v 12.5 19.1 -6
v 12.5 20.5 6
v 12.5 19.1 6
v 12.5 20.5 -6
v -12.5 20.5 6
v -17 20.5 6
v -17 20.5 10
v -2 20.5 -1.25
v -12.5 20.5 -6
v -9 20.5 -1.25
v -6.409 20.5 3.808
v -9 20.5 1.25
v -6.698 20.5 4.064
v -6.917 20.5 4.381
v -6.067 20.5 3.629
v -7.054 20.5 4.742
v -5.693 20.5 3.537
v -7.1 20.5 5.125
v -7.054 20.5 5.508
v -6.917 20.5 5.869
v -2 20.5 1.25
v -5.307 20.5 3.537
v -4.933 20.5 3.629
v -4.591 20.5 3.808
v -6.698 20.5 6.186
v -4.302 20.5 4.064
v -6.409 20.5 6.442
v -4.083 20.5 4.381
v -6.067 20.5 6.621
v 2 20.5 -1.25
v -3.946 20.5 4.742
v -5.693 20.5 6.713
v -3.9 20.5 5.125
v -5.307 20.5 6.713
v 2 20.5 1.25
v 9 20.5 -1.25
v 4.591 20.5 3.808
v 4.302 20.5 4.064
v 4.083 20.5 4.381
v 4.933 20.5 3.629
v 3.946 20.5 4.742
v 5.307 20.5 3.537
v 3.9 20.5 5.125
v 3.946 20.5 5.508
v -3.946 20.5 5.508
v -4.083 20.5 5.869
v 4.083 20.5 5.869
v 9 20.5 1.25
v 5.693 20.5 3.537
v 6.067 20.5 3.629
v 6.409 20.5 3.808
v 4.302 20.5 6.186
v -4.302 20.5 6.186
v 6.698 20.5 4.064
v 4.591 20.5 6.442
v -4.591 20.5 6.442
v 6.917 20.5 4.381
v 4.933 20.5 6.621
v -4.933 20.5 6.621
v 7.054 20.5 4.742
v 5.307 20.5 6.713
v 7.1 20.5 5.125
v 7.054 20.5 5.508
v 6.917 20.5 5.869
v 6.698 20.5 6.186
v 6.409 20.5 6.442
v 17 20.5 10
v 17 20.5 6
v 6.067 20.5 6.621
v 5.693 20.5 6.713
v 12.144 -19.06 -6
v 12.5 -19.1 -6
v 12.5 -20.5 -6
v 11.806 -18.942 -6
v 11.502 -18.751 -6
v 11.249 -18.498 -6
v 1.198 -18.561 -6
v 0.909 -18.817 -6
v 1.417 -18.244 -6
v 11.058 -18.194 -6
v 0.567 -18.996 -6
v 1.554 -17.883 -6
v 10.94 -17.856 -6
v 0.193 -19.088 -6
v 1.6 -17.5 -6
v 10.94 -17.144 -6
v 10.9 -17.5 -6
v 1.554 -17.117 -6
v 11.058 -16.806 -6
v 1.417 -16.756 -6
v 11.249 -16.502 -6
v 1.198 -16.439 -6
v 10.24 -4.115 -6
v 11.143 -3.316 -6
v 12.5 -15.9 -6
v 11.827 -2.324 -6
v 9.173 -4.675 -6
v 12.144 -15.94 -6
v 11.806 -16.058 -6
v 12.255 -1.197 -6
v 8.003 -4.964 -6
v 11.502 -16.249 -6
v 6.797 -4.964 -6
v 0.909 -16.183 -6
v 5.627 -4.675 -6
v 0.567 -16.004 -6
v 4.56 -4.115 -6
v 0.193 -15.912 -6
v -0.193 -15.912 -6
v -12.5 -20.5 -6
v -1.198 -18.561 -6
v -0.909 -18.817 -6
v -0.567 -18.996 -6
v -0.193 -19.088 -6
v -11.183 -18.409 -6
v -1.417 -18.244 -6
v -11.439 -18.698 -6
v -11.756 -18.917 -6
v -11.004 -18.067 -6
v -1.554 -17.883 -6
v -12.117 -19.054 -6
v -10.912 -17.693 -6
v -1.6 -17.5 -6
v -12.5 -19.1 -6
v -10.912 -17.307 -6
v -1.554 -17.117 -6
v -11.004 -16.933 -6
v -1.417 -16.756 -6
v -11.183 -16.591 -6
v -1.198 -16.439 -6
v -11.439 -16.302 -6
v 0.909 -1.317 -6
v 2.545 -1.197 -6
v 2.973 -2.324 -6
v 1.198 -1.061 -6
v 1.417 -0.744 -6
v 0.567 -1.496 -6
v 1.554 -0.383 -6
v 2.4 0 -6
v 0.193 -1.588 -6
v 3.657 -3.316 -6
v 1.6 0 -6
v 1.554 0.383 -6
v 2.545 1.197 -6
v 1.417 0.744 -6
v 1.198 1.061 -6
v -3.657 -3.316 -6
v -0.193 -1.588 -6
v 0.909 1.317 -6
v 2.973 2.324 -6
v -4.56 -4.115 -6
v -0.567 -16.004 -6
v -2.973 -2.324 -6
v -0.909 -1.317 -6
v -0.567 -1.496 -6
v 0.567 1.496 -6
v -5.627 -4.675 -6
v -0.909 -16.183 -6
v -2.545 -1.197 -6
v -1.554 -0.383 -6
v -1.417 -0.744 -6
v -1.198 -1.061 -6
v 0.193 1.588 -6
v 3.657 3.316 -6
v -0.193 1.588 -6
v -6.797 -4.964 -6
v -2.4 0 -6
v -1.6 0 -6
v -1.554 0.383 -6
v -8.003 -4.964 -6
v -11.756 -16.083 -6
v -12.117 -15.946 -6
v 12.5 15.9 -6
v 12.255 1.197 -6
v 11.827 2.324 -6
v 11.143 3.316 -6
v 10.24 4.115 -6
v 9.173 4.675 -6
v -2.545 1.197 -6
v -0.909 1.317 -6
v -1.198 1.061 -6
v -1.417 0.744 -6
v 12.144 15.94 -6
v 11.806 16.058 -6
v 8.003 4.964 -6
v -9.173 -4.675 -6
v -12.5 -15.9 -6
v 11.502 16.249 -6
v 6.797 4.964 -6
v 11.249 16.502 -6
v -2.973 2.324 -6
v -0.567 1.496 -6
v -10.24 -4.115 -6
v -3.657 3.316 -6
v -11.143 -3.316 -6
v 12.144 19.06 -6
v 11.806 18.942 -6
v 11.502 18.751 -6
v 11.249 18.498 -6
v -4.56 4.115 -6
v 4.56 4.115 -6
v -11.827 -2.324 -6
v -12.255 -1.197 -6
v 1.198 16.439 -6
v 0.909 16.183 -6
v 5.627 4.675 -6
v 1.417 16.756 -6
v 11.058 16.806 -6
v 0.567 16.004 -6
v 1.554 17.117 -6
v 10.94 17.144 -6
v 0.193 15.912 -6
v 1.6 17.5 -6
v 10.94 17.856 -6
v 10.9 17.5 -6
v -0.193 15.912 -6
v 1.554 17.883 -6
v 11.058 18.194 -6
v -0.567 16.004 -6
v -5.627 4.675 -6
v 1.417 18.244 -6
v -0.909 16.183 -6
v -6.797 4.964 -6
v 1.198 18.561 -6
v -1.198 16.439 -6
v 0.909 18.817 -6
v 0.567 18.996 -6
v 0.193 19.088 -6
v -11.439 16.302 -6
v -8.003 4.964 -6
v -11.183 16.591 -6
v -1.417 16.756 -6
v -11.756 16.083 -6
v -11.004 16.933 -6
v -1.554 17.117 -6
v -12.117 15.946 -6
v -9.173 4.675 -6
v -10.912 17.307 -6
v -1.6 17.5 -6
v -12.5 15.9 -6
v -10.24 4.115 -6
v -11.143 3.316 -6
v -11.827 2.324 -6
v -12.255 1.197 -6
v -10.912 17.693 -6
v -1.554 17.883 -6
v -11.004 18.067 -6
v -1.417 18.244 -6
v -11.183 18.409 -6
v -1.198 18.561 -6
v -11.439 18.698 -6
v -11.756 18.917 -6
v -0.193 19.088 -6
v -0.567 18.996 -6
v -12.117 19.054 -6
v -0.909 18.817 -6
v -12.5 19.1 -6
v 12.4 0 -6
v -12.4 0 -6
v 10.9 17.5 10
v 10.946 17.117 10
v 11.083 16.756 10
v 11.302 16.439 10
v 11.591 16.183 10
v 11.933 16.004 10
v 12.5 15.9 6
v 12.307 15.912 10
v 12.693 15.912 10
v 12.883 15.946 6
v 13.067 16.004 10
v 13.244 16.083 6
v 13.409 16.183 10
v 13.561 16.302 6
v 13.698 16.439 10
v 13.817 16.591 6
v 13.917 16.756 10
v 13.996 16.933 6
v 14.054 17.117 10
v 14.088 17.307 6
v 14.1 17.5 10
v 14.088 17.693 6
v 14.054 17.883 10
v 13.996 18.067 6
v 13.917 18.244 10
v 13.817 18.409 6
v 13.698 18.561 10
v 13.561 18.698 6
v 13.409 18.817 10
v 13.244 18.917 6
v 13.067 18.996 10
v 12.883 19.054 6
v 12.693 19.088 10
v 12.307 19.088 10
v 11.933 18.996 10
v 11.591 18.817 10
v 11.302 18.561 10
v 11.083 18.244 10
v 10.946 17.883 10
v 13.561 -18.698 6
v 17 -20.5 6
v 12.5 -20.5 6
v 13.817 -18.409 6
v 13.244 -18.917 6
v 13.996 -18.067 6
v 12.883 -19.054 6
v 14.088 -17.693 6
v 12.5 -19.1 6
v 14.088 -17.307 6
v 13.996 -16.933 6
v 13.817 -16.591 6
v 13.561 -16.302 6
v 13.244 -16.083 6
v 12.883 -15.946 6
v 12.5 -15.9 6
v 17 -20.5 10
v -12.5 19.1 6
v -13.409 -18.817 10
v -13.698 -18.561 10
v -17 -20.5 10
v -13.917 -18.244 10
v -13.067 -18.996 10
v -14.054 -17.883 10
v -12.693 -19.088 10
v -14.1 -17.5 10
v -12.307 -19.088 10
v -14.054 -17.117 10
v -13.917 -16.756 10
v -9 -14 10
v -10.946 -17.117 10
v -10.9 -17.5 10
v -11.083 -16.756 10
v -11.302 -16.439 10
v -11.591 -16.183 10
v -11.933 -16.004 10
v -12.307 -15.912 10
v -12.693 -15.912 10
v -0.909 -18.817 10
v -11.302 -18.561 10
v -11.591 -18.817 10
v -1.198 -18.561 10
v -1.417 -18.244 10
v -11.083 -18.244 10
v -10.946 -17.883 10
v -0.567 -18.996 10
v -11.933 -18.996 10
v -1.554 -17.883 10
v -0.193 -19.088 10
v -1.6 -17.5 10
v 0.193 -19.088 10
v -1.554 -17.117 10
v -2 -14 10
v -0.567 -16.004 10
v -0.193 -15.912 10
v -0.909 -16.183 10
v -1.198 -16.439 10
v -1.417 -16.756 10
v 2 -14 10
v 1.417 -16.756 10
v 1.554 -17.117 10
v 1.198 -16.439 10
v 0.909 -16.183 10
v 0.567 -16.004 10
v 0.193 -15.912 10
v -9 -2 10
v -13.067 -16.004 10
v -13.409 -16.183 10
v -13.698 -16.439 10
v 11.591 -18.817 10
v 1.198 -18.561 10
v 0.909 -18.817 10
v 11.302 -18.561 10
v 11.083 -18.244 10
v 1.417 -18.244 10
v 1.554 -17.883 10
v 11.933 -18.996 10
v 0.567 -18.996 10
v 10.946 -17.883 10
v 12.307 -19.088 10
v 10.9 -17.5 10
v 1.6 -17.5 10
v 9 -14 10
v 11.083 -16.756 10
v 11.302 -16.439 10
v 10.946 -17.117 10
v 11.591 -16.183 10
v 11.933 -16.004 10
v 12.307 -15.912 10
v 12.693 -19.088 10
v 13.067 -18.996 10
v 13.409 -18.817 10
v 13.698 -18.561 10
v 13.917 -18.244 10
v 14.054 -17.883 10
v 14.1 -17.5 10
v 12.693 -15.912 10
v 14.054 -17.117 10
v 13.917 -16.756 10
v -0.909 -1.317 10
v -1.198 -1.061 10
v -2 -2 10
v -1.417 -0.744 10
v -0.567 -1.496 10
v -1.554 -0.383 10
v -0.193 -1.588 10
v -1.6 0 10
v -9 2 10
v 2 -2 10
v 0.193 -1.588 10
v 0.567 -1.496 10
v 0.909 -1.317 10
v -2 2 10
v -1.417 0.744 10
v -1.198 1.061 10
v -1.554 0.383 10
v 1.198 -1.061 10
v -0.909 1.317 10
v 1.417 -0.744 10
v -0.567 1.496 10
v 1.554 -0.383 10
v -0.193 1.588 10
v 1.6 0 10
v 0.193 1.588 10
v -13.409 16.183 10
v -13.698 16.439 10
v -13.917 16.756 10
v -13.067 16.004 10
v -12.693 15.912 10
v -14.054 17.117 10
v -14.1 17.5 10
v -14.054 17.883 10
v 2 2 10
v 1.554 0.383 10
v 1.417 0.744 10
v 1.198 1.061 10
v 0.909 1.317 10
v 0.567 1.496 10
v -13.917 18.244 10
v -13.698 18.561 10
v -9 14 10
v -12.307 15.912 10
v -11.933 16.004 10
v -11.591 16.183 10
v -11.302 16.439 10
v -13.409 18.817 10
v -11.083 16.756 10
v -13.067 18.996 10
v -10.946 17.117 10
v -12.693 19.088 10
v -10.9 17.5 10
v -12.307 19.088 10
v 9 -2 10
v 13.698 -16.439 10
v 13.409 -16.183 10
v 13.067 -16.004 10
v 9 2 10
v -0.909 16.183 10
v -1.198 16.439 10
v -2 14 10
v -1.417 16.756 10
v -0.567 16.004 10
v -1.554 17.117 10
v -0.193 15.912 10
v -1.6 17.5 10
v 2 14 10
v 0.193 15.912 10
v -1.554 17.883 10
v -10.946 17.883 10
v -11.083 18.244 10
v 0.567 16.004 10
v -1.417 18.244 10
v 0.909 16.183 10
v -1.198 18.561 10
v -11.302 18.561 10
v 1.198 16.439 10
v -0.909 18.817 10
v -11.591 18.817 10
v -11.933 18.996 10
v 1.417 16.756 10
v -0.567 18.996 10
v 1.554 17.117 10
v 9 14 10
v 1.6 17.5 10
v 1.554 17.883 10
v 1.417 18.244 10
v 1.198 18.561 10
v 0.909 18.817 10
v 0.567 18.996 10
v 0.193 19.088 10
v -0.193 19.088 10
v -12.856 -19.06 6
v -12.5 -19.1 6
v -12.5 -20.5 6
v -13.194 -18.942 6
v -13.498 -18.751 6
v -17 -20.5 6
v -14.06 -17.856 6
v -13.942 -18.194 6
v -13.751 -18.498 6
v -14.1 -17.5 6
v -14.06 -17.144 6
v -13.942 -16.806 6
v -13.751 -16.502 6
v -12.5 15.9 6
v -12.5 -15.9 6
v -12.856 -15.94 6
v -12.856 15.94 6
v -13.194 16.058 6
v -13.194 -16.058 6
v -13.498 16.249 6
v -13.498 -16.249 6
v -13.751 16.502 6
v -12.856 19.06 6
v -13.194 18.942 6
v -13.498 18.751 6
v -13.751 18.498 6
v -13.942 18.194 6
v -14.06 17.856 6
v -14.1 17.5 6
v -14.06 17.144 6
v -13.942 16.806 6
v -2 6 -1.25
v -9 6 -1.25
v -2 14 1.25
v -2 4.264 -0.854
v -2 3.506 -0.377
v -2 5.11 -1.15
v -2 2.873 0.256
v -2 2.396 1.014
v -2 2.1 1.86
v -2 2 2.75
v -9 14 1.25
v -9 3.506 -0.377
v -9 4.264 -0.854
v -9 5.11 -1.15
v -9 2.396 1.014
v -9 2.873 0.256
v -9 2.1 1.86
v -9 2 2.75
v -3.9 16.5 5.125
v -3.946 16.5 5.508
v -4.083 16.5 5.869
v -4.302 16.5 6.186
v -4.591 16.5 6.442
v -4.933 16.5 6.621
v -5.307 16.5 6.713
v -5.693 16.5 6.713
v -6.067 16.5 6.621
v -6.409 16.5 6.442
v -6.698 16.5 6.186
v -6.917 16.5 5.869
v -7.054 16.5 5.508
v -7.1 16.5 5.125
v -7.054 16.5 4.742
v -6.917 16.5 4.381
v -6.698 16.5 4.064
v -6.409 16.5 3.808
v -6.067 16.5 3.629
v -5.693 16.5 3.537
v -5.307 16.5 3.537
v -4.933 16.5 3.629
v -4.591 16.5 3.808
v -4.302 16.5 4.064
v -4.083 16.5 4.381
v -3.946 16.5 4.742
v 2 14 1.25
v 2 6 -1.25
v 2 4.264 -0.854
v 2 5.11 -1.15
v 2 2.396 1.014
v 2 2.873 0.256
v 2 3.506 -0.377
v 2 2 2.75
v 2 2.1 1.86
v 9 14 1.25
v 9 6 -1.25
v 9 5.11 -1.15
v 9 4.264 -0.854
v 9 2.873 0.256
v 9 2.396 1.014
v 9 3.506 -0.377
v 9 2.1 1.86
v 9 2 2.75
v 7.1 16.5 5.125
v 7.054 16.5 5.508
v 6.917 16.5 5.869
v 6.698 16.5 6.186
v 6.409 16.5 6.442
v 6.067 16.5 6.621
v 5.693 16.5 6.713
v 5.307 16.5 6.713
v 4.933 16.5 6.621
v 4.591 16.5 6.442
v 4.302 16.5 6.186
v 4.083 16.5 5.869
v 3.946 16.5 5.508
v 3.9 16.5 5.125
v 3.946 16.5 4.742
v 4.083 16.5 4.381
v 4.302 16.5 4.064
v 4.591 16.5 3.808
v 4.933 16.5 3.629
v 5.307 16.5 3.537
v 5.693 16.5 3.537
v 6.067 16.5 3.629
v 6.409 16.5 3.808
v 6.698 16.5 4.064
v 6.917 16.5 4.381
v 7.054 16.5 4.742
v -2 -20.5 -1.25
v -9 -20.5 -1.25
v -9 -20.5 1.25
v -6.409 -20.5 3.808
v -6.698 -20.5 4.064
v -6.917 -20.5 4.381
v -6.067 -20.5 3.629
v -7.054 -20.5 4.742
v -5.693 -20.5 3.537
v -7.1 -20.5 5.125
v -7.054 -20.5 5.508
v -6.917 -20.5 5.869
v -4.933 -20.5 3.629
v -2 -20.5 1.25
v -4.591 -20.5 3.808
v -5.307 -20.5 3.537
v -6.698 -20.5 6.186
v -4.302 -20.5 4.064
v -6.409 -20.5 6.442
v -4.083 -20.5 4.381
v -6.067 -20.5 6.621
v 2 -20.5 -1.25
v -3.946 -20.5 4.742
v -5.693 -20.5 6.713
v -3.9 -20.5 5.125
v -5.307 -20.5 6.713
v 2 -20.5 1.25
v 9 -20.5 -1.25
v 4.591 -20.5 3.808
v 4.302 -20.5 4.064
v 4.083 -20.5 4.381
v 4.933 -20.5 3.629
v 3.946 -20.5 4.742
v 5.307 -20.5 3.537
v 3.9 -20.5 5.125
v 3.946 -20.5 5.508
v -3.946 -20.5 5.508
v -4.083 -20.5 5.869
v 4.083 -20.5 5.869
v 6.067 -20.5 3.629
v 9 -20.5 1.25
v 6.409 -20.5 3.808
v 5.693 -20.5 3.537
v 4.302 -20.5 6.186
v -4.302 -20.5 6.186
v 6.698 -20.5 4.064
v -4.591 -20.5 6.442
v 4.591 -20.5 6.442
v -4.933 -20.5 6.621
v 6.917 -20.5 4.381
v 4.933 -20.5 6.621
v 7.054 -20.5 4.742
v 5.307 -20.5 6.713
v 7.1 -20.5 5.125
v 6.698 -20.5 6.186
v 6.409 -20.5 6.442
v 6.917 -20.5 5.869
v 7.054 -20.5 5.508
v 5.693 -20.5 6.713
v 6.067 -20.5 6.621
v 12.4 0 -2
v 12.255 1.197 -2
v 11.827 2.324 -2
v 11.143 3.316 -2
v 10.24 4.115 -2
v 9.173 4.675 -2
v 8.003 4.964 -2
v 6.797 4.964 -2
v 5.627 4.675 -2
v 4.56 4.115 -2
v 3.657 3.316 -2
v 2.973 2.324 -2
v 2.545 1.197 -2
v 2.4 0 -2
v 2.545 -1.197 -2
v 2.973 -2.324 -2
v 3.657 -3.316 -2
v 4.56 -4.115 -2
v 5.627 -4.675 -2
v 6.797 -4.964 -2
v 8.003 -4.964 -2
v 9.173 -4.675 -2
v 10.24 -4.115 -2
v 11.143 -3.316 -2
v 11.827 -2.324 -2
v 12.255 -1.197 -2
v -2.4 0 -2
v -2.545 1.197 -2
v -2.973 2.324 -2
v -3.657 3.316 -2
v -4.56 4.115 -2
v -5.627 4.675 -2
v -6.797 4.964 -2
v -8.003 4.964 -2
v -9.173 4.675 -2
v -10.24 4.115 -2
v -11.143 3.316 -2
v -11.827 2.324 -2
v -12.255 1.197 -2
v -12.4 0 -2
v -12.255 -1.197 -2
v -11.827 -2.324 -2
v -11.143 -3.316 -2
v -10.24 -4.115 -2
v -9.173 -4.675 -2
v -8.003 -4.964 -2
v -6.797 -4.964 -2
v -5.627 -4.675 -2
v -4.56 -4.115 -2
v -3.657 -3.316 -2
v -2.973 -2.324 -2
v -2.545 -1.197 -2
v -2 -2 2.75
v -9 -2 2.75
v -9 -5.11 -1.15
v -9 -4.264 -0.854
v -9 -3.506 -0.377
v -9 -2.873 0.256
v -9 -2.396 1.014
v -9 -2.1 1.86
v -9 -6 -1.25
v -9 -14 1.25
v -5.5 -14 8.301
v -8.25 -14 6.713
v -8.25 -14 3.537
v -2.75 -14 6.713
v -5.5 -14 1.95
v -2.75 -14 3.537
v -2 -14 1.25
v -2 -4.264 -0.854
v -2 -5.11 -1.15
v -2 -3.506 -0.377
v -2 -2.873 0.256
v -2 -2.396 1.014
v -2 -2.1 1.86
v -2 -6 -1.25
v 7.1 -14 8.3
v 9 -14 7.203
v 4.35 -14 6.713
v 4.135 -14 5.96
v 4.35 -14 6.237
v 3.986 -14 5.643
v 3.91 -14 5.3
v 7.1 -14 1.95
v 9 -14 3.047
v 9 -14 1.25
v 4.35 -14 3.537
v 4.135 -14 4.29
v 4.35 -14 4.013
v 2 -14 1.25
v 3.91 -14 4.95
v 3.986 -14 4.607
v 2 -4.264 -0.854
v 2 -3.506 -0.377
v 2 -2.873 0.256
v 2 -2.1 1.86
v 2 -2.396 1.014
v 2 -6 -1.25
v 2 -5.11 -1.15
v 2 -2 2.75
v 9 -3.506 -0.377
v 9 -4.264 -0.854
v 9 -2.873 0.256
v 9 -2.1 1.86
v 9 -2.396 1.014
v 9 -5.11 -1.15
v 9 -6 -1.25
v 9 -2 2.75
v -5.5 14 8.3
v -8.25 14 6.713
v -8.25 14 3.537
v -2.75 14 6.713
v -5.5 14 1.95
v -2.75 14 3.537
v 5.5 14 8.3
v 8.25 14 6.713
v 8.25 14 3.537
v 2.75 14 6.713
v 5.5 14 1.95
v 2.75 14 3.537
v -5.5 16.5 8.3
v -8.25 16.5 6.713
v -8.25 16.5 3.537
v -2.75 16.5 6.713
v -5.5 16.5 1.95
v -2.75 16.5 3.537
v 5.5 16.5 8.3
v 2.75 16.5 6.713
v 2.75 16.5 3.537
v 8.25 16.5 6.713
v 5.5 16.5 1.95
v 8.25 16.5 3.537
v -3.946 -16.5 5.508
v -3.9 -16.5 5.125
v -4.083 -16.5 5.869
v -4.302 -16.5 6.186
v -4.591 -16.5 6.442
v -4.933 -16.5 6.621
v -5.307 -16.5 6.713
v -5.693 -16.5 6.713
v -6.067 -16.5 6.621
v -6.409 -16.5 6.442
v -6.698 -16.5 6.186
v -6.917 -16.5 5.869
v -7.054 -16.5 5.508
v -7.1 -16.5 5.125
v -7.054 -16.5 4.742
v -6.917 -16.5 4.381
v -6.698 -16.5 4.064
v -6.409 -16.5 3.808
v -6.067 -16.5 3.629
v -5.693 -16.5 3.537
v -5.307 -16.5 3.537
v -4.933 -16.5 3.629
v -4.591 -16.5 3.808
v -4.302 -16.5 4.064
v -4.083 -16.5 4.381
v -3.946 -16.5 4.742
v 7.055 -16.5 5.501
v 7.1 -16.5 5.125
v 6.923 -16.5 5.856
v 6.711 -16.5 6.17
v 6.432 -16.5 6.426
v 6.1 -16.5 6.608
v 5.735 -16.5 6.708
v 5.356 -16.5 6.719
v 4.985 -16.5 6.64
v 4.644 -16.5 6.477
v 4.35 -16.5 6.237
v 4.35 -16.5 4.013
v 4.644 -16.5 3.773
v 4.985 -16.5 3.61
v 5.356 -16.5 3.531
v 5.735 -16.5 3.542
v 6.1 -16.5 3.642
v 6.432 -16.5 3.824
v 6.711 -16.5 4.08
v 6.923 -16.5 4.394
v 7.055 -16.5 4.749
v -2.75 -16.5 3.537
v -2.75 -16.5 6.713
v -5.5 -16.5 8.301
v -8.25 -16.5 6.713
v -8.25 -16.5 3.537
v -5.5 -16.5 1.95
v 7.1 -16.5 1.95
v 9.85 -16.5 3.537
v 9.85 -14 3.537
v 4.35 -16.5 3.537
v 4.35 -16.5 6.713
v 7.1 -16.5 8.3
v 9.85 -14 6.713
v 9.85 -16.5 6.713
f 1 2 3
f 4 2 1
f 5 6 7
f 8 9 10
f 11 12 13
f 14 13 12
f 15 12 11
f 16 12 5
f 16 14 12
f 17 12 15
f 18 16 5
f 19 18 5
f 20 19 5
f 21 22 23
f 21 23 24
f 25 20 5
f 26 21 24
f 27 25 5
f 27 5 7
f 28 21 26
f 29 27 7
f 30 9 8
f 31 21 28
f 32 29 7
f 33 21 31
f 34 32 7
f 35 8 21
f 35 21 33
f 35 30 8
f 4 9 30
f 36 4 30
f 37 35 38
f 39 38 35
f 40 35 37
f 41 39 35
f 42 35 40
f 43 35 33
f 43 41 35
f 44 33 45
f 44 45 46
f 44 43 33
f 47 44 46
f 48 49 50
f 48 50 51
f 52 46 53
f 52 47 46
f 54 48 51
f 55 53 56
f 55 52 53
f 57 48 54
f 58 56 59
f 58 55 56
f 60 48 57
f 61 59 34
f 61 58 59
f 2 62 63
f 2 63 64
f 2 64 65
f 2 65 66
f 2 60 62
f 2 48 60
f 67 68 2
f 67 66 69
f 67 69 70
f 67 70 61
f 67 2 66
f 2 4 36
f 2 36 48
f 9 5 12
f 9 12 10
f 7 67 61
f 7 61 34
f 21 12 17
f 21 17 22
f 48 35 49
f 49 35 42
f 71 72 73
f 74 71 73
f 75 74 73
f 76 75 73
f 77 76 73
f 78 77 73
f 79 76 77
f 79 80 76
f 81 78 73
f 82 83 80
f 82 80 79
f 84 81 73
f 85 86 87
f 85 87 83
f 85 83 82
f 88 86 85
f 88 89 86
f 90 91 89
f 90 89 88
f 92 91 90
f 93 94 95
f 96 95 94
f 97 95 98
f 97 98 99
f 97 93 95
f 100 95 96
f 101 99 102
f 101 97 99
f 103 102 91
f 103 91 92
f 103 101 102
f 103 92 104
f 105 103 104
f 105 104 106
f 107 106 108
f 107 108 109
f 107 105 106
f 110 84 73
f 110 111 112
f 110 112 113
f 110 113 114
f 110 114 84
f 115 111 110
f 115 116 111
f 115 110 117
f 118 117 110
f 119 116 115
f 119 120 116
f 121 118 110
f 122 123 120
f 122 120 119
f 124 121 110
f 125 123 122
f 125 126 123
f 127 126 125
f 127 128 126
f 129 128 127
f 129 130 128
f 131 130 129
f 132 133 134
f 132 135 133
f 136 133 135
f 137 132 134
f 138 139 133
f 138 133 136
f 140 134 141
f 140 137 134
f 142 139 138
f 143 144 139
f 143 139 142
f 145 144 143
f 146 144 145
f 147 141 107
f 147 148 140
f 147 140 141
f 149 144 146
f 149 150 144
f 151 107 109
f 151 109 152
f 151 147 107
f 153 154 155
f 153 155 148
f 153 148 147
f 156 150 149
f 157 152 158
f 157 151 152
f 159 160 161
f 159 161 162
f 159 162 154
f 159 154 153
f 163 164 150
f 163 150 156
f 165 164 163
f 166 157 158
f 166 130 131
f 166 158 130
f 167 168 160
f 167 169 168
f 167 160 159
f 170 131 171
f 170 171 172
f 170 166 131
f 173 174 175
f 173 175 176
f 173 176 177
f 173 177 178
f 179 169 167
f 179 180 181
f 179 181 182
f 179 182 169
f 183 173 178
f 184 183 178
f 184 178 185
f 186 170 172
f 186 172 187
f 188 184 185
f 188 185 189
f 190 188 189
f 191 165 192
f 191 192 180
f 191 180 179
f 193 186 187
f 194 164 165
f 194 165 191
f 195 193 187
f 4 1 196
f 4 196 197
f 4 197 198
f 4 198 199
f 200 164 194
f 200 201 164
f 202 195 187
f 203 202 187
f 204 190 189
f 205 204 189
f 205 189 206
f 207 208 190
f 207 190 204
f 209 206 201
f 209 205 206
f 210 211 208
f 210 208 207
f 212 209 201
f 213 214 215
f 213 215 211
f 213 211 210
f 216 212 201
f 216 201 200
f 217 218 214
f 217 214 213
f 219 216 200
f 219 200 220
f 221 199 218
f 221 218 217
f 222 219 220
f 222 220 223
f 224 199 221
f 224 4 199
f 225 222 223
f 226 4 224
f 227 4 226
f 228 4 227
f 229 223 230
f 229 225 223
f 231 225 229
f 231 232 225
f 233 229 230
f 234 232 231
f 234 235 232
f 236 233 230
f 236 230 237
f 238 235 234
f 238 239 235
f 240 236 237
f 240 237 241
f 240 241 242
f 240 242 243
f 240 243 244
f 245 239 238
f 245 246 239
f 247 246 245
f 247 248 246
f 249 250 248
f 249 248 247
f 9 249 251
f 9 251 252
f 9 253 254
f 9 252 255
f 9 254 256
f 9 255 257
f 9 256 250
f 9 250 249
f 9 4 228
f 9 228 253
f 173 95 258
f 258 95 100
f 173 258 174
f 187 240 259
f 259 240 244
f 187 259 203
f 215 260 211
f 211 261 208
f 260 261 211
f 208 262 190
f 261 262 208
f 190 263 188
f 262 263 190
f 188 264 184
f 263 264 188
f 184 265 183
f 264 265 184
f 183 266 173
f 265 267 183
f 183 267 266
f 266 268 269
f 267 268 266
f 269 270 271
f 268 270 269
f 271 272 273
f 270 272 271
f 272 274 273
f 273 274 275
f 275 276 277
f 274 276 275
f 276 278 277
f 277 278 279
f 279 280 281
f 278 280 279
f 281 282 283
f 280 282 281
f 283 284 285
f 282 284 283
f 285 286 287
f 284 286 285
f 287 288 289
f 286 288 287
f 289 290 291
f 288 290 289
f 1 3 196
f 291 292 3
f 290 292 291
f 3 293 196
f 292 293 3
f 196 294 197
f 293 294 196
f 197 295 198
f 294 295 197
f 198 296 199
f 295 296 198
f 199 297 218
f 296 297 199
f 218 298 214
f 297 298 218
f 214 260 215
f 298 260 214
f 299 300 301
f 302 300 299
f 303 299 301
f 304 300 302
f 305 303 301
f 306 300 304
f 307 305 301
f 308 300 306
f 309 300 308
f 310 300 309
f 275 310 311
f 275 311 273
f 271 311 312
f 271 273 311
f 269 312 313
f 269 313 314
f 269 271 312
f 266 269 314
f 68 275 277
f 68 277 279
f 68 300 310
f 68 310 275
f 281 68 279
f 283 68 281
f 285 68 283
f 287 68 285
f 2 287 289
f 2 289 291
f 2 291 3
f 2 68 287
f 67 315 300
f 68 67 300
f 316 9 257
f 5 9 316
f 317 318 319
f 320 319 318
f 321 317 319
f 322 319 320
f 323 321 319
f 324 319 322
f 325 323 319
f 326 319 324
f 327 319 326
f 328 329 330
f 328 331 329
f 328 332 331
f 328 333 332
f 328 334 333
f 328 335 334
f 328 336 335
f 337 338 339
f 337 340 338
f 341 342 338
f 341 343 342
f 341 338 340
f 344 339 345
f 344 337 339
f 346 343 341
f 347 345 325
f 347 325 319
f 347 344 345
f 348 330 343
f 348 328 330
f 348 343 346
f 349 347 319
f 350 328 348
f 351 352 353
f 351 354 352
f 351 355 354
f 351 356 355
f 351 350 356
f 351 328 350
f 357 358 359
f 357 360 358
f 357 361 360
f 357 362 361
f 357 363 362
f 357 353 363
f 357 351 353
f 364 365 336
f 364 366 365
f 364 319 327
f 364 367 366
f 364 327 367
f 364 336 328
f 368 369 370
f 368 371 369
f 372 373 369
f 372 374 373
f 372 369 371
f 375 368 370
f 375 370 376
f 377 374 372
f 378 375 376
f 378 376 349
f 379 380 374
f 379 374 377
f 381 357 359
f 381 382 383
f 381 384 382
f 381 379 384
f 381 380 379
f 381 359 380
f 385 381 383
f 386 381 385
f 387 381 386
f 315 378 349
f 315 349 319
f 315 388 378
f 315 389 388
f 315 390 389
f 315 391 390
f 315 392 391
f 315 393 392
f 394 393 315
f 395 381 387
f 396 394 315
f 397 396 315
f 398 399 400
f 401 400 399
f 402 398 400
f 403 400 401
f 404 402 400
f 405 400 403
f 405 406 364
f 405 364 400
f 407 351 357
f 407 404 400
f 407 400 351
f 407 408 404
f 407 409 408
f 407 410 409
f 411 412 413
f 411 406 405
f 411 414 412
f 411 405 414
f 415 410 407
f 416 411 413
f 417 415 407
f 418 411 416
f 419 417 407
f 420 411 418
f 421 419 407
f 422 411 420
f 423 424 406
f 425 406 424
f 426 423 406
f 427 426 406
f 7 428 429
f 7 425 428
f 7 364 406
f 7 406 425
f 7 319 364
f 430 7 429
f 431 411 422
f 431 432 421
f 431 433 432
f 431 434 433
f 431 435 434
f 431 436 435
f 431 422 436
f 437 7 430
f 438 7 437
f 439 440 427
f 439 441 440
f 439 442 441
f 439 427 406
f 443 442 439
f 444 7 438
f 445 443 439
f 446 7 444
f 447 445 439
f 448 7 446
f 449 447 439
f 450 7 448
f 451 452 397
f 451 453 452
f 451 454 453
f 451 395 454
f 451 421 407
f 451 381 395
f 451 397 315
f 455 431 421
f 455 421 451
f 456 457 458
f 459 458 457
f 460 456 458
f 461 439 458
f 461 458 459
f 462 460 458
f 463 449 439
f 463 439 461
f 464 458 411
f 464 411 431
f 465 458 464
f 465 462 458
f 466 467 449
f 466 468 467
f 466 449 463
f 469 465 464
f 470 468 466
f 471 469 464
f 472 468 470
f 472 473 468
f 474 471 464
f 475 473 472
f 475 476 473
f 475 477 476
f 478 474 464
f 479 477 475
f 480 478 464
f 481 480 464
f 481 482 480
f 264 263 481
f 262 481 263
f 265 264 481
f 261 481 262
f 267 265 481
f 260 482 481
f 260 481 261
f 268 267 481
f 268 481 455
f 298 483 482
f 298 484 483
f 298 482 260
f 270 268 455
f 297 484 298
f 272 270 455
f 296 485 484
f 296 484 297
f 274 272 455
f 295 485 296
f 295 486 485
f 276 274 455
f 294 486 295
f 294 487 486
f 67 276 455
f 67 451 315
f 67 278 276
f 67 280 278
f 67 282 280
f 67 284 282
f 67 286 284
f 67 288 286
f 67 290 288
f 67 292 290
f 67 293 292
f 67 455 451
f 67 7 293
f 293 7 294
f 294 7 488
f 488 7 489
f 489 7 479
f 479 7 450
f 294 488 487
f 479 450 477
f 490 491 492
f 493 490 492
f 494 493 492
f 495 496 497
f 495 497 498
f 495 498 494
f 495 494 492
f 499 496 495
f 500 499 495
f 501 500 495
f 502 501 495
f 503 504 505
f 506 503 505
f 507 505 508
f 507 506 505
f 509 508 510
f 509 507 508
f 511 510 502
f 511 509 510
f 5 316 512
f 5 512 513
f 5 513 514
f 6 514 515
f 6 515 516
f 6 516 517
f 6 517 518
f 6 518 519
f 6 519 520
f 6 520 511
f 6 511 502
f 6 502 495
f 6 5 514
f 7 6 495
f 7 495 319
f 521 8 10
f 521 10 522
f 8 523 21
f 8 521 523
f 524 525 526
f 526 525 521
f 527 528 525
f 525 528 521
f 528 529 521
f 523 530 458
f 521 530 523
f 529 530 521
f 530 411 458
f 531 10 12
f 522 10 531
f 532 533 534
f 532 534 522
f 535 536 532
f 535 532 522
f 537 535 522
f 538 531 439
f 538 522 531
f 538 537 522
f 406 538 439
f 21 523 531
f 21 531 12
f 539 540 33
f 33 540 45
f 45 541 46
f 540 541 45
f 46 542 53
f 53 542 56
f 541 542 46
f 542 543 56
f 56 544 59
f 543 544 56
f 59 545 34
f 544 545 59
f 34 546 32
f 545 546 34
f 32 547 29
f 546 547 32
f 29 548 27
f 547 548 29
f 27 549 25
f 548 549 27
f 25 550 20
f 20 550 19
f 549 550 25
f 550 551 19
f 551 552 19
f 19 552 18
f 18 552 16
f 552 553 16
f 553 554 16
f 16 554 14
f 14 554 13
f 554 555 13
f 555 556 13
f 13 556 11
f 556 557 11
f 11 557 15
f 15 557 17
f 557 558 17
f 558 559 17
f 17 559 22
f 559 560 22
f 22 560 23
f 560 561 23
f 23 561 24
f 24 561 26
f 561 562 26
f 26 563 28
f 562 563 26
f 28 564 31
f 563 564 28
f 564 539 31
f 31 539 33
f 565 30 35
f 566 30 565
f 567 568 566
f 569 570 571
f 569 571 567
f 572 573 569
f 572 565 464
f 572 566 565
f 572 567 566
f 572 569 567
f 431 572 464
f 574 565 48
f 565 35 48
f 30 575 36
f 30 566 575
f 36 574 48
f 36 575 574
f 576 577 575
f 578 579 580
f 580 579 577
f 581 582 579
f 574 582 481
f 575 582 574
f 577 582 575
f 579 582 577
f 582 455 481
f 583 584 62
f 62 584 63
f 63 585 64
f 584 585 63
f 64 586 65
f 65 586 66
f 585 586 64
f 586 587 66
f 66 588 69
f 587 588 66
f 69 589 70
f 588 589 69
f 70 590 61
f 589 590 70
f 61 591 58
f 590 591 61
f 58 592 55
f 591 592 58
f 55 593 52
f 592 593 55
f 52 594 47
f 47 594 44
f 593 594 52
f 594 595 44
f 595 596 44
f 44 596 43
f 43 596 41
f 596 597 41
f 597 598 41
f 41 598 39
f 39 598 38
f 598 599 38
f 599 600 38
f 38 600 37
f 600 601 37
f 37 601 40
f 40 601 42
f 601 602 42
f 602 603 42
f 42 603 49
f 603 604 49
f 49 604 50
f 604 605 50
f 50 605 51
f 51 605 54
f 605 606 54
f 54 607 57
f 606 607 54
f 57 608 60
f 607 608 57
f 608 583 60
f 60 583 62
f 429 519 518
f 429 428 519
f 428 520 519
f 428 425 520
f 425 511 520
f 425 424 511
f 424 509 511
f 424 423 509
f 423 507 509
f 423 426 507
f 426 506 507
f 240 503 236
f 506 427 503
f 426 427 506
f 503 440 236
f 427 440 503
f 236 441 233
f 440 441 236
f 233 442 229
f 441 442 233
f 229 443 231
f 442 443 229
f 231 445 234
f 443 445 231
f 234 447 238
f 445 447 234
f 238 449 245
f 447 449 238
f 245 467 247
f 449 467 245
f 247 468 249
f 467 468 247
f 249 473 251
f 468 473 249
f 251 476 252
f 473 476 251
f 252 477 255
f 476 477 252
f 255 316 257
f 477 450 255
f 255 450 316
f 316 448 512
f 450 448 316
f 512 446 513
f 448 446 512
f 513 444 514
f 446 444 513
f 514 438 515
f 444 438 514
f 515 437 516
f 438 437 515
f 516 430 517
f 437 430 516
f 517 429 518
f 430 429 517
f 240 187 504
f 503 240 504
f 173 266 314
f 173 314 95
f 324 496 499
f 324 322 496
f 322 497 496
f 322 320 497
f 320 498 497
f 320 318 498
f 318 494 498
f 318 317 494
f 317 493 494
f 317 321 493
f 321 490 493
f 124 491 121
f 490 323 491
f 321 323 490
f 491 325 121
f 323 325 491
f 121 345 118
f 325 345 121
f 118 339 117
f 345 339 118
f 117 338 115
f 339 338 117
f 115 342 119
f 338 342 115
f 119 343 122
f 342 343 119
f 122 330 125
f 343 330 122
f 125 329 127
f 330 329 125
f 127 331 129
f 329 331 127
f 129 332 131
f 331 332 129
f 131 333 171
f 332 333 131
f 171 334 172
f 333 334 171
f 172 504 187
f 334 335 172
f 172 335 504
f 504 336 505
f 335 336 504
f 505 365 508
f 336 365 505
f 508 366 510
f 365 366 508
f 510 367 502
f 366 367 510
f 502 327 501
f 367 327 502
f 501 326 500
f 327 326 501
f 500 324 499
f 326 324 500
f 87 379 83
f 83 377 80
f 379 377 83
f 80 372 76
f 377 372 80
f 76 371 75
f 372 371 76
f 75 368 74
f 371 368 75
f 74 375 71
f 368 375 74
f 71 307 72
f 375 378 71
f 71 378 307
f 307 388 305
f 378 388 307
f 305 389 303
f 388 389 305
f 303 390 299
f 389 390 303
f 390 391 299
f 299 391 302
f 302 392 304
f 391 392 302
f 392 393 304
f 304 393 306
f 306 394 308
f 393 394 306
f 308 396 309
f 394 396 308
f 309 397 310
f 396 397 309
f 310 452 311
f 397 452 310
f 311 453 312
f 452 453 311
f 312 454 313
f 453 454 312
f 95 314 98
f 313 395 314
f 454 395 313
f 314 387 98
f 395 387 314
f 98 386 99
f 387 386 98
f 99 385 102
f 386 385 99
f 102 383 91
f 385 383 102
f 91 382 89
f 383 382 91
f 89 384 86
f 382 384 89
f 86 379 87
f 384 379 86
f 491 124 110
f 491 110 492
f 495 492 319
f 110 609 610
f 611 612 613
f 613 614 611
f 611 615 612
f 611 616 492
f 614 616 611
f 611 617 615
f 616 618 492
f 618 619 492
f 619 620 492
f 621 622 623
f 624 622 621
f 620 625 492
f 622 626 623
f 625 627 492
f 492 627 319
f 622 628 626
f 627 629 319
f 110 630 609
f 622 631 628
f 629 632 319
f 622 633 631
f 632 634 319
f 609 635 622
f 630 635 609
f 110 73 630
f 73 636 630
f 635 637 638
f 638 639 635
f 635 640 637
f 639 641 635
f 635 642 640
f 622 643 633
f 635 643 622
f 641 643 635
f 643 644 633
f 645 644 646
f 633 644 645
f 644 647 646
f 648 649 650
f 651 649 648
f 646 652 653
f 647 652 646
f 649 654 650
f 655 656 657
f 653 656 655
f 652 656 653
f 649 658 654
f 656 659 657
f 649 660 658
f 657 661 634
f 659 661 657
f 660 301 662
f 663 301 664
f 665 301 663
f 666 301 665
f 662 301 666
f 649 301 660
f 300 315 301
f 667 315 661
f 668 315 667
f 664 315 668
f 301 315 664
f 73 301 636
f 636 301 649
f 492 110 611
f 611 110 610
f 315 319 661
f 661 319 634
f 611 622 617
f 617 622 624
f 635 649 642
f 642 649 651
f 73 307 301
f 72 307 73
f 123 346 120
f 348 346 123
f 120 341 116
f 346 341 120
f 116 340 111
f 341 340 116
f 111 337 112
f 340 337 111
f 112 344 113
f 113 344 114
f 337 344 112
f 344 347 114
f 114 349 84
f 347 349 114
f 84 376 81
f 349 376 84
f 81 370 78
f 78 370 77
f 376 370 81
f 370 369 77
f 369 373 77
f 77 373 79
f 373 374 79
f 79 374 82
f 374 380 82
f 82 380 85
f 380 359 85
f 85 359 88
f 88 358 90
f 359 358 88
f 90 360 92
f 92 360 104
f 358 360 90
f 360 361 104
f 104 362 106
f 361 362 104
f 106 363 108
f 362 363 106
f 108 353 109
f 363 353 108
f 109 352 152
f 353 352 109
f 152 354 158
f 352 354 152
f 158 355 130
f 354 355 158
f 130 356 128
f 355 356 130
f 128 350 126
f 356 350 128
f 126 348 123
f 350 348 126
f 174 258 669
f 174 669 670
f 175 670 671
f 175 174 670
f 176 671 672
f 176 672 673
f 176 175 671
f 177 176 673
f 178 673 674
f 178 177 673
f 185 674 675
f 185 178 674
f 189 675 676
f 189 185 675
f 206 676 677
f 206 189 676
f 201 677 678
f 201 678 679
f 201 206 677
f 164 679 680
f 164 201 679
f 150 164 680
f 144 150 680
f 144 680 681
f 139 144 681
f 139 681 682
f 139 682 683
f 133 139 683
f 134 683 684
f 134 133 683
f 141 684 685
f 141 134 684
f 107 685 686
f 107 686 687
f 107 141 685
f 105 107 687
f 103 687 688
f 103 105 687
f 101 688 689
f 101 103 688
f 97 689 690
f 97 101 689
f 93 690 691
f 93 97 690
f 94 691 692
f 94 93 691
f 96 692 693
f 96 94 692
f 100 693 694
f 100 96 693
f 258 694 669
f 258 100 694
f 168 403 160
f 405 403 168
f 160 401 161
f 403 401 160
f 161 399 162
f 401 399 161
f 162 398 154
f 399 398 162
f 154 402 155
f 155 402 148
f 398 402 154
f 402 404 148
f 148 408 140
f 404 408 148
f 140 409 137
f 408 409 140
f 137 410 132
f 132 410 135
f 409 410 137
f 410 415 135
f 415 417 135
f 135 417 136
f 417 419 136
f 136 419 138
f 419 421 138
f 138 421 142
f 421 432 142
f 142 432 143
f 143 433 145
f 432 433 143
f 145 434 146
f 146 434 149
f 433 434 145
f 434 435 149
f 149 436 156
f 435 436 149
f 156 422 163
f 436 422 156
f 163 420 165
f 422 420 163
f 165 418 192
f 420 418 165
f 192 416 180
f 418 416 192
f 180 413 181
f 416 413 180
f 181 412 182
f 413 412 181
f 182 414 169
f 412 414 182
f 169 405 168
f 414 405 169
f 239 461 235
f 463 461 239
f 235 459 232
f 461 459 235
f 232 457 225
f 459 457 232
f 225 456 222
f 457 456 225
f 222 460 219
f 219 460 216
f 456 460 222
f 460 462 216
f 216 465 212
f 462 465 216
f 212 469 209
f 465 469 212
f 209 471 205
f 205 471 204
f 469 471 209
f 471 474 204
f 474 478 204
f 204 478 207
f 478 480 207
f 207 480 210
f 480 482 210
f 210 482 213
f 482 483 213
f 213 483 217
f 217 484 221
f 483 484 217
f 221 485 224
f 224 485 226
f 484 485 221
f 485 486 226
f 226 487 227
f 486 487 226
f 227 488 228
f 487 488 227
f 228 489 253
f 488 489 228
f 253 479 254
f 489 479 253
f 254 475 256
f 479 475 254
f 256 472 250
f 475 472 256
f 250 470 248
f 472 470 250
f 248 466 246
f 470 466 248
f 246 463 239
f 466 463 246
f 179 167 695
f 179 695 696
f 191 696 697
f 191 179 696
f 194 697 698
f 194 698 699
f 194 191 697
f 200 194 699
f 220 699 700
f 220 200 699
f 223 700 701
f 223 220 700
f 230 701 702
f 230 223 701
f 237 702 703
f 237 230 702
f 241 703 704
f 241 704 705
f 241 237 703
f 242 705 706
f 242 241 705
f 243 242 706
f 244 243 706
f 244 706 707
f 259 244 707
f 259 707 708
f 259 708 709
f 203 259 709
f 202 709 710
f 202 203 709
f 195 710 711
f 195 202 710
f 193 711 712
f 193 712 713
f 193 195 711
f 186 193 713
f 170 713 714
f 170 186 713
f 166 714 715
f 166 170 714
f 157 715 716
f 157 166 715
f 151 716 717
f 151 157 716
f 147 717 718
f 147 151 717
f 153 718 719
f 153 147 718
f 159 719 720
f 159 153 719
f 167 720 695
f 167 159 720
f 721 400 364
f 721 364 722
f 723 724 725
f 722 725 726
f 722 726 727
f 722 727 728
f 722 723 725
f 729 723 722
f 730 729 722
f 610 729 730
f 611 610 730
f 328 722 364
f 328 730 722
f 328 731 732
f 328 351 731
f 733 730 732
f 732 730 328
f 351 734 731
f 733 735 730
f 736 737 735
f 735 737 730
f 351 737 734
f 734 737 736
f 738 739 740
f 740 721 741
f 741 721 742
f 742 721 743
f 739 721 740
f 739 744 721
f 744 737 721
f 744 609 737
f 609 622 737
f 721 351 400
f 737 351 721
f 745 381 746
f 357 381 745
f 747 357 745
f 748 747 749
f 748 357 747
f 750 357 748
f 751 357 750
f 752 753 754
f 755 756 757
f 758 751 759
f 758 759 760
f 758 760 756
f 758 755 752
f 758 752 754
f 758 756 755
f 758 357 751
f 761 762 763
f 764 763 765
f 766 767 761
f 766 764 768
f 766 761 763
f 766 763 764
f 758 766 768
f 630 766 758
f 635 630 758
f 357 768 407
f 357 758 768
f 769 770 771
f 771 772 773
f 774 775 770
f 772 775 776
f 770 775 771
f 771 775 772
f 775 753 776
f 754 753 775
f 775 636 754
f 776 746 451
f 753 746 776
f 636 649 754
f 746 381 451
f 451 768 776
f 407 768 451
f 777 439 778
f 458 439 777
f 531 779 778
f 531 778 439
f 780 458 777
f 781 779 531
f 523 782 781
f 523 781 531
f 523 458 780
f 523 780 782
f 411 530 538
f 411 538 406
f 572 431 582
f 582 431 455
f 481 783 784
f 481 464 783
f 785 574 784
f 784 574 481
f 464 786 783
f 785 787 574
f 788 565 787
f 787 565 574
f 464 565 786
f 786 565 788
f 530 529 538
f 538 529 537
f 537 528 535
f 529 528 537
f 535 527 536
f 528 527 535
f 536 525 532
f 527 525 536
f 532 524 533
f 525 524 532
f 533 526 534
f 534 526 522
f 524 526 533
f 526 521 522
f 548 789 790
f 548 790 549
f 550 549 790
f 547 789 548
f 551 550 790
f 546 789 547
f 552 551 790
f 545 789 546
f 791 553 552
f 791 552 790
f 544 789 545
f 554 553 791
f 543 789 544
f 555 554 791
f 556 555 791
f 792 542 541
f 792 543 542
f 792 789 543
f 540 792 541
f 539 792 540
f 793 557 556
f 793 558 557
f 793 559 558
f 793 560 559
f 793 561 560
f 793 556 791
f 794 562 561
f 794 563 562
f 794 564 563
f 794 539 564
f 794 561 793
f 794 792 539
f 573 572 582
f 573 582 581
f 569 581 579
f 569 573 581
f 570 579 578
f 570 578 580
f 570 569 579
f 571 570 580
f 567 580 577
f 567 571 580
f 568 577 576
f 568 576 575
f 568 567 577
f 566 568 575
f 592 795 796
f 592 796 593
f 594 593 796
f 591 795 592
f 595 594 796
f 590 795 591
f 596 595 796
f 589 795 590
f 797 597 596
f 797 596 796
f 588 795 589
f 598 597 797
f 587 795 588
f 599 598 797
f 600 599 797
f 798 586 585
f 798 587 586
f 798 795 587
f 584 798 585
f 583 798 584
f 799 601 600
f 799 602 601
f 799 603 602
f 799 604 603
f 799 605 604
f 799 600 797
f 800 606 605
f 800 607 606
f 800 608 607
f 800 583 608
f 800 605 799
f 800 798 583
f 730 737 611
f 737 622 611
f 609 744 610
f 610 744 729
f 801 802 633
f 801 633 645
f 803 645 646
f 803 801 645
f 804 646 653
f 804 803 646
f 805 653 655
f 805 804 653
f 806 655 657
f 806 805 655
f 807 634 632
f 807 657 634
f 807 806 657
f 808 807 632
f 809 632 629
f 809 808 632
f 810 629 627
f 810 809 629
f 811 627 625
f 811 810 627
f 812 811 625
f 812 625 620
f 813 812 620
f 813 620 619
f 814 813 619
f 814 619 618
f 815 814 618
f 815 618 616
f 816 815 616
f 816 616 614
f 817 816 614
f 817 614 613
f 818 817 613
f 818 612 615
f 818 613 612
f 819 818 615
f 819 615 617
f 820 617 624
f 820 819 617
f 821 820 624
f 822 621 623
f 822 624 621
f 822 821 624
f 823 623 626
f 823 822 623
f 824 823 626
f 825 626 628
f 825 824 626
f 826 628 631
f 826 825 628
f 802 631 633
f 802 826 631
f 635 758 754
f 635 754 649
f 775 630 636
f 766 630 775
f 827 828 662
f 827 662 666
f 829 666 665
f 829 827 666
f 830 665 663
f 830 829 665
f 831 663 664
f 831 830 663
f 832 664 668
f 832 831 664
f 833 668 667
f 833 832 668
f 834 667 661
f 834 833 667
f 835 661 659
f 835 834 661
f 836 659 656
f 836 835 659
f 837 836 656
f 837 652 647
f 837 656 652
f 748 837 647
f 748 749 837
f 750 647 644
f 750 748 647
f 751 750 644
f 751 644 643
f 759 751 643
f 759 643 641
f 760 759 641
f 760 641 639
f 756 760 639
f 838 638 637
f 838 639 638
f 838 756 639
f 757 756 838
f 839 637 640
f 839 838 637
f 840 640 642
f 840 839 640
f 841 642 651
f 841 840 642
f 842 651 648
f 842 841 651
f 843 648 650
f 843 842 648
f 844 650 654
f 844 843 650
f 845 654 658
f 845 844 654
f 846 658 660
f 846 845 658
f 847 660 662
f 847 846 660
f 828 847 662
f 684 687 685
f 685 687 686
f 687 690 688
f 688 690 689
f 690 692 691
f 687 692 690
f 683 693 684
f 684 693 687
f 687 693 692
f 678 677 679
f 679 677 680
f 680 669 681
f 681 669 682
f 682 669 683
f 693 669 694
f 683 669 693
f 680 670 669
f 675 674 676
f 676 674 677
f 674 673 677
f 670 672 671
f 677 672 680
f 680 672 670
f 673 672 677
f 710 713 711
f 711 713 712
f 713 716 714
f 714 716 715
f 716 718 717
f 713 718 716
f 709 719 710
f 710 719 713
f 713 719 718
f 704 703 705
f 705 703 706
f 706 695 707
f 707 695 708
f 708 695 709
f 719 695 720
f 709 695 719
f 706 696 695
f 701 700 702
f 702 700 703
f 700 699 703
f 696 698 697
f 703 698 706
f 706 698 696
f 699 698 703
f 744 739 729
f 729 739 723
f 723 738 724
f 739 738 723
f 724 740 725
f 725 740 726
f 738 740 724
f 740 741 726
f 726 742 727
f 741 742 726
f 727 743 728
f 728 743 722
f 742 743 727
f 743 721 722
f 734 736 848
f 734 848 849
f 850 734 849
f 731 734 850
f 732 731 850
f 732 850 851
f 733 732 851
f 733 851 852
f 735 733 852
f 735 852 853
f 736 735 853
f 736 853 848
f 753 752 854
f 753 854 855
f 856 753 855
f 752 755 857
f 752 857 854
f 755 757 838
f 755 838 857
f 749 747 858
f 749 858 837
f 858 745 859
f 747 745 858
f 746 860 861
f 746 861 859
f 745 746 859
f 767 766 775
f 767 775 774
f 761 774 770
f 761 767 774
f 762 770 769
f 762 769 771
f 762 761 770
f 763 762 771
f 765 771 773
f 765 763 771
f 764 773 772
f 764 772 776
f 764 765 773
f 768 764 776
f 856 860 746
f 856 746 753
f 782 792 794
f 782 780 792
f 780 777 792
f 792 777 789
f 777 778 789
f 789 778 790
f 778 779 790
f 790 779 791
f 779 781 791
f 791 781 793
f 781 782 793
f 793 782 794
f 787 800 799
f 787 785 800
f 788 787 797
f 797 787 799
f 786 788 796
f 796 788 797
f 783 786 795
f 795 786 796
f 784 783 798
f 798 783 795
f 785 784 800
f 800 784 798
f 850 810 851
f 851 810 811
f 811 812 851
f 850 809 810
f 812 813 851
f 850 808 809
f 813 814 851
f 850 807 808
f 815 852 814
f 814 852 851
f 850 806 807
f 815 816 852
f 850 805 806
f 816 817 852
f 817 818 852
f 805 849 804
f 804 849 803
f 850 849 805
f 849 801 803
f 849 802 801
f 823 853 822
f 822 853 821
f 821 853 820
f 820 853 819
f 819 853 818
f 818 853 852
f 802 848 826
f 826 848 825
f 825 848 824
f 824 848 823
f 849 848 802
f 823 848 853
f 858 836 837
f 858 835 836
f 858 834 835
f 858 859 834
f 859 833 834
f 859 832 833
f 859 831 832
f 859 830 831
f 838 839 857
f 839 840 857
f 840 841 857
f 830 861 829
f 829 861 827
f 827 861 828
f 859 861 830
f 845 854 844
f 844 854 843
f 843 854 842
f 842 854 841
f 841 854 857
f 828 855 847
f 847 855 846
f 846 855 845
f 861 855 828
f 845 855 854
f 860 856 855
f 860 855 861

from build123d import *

# Parameters (mm, degrees)
PAD_DEPTH         = 20.5
SKETCH001_R       = 1.6
POCKET_DEPTH      = 16.001
POCKET_DEPTH_BACK = 0.001
POCKET001_DEPTH   = 7
POCKET002_DEPTH   = 1
POCKET003_DEPTH   = 7
SKETCH005_R       = 1.6
POCKET004_DEPTH   = 6.501
POCKET005_DEPTH   = 2.5
SKETCH007_R       = 1.6
POCKET006_DEPTH   = 6.501
POCKET007_DEPTH   = 2.5
SKETCH009_R       = 5
POCKET008_DEPTH   = 4


with BuildPart() as part:
    # Sketch → Pad (new body, symmetric)
    with BuildSketch(Plane.XZ):
        Polygon((12.5, 6), (12.5, -6), (-12.5, -6), (-12.5, 6), (-17, 6), (-17, 10), (17, 10), (17, 6), align=None)
    extrude(amount=PAD_DEPTH, both=True)

    # Sketch001 (on Face6 of Pad) → Pocket (cut, two sides)
    with BuildSketch(Plane(origin=(0, 0, 10), x_dir=(-1, 0, 0), z_dir=(0, 0, 1))) as pocket_sk:
        with Locations((-12.5, 17.5)):
            Circle(SKETCH001_R)
        with Locations((12.5, 17.5)):
            Circle(SKETCH001_R)
        with Locations((0, 17.5)):
            Circle(SKETCH001_R)
        with Locations((-12.5, -17.5)):
            Circle(SKETCH001_R)
        with Locations((12.5, -17.5)):
            Circle(SKETCH001_R)
        Circle(SKETCH001_R)
        with Locations((0, -17.5)):
            Circle(SKETCH001_R)
    extrude(amount=-POCKET_DEPTH, mode=Mode.SUBTRACT)
    extrude(pocket_sk.sketch, amount=POCKET_DEPTH_BACK, mode=Mode.SUBTRACT)

    # Sketch002 (on DatumPlane) → Pocket001 (cut)
    with BuildSketch(Plane.YZ.offset(2)):
        with BuildLine():
            ThreePointArc((-6, -1.25), (-3.171573, -0.078427), (-2, 2.75))
            Line((-2, 2.75), (-2, 10))
            Line((-14, 10), (-2, 10))
            Line((-14, 10), (-14, 1.25))
            Line((-14, 1.25), (-20.5, 1.25))
            Line((-20.5, 1.25), (-20.5, -1.25))
            Line((-20.5, -1.25), (-6, -1.25))
        make_face()
        with BuildLine():
            ThreePointArc((2, 2.75), (3.171573, -0.078427), (6, -1.25))
            Line((20.5, -1.25), (6, -1.25))
            Line((20.5, 1.25), (20.5, -1.25))
            Line((14, 1.25), (20.5, 1.25))
            Line((14, 10), (14, 1.25))
            Line((2, 10), (14, 10))
            Line((2, 2.75), (2, 10))
        make_face()
    extrude(amount=POCKET001_DEPTH, mode=Mode.SUBTRACT)

    # Sketch001 (on Face6 of Pad) → Pocket002 (cut)
    with BuildSketch(Plane(origin=(0, 0, 10), x_dir=(-1, 0, 0), z_dir=(0, 0, 1))):
        with Locations((-12.5, 17.5)):
            Circle(SKETCH001_R)
        with Locations((12.5, 17.5)):
            Circle(SKETCH001_R)
        with Locations((0, 17.5)):
            Circle(SKETCH001_R)
        with Locations((-12.5, -17.5)):
            Circle(SKETCH001_R)
        with Locations((12.5, -17.5)):
            Circle(SKETCH001_R)
        Circle(SKETCH001_R)
        with Locations((0, -17.5)):
            Circle(SKETCH001_R)
    extrude(amount=-POCKET002_DEPTH, mode=Mode.SUBTRACT)

    # Sketch004 (on DatumPlane) → Pocket003 (cut)
    with BuildSketch(Plane.YZ.offset(-2)):
        with BuildLine():
            ThreePointArc((-6, -1.25), (-3.171573, -0.078427), (-2, 2.75))
            Line((-2, 10), (-2, 2.75))
            Line((-2, 10), (-14, 10))
            Line((-14, 10), (-14, 1.25))
            Line((-14, 1.25), (-20.5, 1.25))
            Line((-20.5, 1.25), (-20.5, -1.25))
            Line((-20.5, -1.25), (-6, -1.25))
        make_face()
        with BuildLine():
            ThreePointArc((2, 2.75), (3.171573, -0.078427), (6, -1.25))
            Line((20.5, -1.25), (6, -1.25))
            Line((20.5, 1.25), (20.5, -1.25))
            Line((14, 1.25), (20.5, 1.25))
            Line((14, 10), (14, 1.25))
            Line((2, 10), (14, 10))
            Line((2, 2.75), (2, 10))
        make_face()
    extrude(amount=-POCKET003_DEPTH, mode=Mode.SUBTRACT)

    # Sketch005 (on DatumPlane) → Pocket004 (cut, through all)
    with BuildSketch(Plane.XZ.offset(14)):
        with Locations((-5.5, 5.125)):
            Circle(SKETCH005_R)
        with Locations((5.5, 5.125)):
            Circle(SKETCH005_R)
    extrude(amount=POCKET004_DEPTH, mode=Mode.SUBTRACT)

    # Sketch006 (on DatumPlane) → Pocket005 (cut)
    with BuildSketch(Plane.XZ.offset(14)):
        Polygon((-2.750142, 3.537404), (-2.750142, 6.71283), (-5.500142, 8.300543), (-8.250142, 6.71283), (-8.250142, 3.537404), (-5.500142, 1.94969), align=None)
        Polygon((9.85, 3.537287), (9.85, 6.712713), (7.1, 8.300426), (4.35, 6.712713), (4.35, 3.537287), (7.1, 1.949574), align=None)
    extrude(amount=POCKET005_DEPTH, mode=Mode.SUBTRACT)

    # Sketch007 (on DatumPlane) → Pocket006 (cut, through all)
    with BuildSketch(Plane.XZ.offset(-14)):
        with Locations((-5.5, 5.125)):
            Circle(SKETCH007_R)
        with Locations((5.5, 5.125)):
            Circle(SKETCH007_R)
    extrude(amount=-POCKET006_DEPTH, mode=Mode.SUBTRACT)

    # Sketch008 (on DatumPlane) → Pocket007 (cut)
    with BuildSketch(Plane.XZ.offset(-14)):
        Polygon((-2.75, 3.537287), (-2.75, 6.712713), (-5.5, 8.300426), (-8.25, 6.712713), (-8.25, 3.537287), (-5.5, 1.949574), align=None)
        Polygon((8.25, 3.537287), (8.25, 6.712713), (5.5, 8.300426), (2.75, 6.712713), (2.75, 3.537287), (5.5, 1.949574), align=None)
    extrude(amount=-POCKET007_DEPTH, mode=Mode.SUBTRACT)

    # Sketch009 (on DatumPlane) → Pocket008 (cut)
    with BuildSketch(Plane.XY.offset(-6)):
        with Locations((-7.4, 0)):
            Circle(SKETCH009_R)
        with Locations((7.4, 0)):
            Circle(SKETCH009_R)
    extrude(amount=POCKET008_DEPTH, mode=Mode.SUBTRACT)


solid = part.part
